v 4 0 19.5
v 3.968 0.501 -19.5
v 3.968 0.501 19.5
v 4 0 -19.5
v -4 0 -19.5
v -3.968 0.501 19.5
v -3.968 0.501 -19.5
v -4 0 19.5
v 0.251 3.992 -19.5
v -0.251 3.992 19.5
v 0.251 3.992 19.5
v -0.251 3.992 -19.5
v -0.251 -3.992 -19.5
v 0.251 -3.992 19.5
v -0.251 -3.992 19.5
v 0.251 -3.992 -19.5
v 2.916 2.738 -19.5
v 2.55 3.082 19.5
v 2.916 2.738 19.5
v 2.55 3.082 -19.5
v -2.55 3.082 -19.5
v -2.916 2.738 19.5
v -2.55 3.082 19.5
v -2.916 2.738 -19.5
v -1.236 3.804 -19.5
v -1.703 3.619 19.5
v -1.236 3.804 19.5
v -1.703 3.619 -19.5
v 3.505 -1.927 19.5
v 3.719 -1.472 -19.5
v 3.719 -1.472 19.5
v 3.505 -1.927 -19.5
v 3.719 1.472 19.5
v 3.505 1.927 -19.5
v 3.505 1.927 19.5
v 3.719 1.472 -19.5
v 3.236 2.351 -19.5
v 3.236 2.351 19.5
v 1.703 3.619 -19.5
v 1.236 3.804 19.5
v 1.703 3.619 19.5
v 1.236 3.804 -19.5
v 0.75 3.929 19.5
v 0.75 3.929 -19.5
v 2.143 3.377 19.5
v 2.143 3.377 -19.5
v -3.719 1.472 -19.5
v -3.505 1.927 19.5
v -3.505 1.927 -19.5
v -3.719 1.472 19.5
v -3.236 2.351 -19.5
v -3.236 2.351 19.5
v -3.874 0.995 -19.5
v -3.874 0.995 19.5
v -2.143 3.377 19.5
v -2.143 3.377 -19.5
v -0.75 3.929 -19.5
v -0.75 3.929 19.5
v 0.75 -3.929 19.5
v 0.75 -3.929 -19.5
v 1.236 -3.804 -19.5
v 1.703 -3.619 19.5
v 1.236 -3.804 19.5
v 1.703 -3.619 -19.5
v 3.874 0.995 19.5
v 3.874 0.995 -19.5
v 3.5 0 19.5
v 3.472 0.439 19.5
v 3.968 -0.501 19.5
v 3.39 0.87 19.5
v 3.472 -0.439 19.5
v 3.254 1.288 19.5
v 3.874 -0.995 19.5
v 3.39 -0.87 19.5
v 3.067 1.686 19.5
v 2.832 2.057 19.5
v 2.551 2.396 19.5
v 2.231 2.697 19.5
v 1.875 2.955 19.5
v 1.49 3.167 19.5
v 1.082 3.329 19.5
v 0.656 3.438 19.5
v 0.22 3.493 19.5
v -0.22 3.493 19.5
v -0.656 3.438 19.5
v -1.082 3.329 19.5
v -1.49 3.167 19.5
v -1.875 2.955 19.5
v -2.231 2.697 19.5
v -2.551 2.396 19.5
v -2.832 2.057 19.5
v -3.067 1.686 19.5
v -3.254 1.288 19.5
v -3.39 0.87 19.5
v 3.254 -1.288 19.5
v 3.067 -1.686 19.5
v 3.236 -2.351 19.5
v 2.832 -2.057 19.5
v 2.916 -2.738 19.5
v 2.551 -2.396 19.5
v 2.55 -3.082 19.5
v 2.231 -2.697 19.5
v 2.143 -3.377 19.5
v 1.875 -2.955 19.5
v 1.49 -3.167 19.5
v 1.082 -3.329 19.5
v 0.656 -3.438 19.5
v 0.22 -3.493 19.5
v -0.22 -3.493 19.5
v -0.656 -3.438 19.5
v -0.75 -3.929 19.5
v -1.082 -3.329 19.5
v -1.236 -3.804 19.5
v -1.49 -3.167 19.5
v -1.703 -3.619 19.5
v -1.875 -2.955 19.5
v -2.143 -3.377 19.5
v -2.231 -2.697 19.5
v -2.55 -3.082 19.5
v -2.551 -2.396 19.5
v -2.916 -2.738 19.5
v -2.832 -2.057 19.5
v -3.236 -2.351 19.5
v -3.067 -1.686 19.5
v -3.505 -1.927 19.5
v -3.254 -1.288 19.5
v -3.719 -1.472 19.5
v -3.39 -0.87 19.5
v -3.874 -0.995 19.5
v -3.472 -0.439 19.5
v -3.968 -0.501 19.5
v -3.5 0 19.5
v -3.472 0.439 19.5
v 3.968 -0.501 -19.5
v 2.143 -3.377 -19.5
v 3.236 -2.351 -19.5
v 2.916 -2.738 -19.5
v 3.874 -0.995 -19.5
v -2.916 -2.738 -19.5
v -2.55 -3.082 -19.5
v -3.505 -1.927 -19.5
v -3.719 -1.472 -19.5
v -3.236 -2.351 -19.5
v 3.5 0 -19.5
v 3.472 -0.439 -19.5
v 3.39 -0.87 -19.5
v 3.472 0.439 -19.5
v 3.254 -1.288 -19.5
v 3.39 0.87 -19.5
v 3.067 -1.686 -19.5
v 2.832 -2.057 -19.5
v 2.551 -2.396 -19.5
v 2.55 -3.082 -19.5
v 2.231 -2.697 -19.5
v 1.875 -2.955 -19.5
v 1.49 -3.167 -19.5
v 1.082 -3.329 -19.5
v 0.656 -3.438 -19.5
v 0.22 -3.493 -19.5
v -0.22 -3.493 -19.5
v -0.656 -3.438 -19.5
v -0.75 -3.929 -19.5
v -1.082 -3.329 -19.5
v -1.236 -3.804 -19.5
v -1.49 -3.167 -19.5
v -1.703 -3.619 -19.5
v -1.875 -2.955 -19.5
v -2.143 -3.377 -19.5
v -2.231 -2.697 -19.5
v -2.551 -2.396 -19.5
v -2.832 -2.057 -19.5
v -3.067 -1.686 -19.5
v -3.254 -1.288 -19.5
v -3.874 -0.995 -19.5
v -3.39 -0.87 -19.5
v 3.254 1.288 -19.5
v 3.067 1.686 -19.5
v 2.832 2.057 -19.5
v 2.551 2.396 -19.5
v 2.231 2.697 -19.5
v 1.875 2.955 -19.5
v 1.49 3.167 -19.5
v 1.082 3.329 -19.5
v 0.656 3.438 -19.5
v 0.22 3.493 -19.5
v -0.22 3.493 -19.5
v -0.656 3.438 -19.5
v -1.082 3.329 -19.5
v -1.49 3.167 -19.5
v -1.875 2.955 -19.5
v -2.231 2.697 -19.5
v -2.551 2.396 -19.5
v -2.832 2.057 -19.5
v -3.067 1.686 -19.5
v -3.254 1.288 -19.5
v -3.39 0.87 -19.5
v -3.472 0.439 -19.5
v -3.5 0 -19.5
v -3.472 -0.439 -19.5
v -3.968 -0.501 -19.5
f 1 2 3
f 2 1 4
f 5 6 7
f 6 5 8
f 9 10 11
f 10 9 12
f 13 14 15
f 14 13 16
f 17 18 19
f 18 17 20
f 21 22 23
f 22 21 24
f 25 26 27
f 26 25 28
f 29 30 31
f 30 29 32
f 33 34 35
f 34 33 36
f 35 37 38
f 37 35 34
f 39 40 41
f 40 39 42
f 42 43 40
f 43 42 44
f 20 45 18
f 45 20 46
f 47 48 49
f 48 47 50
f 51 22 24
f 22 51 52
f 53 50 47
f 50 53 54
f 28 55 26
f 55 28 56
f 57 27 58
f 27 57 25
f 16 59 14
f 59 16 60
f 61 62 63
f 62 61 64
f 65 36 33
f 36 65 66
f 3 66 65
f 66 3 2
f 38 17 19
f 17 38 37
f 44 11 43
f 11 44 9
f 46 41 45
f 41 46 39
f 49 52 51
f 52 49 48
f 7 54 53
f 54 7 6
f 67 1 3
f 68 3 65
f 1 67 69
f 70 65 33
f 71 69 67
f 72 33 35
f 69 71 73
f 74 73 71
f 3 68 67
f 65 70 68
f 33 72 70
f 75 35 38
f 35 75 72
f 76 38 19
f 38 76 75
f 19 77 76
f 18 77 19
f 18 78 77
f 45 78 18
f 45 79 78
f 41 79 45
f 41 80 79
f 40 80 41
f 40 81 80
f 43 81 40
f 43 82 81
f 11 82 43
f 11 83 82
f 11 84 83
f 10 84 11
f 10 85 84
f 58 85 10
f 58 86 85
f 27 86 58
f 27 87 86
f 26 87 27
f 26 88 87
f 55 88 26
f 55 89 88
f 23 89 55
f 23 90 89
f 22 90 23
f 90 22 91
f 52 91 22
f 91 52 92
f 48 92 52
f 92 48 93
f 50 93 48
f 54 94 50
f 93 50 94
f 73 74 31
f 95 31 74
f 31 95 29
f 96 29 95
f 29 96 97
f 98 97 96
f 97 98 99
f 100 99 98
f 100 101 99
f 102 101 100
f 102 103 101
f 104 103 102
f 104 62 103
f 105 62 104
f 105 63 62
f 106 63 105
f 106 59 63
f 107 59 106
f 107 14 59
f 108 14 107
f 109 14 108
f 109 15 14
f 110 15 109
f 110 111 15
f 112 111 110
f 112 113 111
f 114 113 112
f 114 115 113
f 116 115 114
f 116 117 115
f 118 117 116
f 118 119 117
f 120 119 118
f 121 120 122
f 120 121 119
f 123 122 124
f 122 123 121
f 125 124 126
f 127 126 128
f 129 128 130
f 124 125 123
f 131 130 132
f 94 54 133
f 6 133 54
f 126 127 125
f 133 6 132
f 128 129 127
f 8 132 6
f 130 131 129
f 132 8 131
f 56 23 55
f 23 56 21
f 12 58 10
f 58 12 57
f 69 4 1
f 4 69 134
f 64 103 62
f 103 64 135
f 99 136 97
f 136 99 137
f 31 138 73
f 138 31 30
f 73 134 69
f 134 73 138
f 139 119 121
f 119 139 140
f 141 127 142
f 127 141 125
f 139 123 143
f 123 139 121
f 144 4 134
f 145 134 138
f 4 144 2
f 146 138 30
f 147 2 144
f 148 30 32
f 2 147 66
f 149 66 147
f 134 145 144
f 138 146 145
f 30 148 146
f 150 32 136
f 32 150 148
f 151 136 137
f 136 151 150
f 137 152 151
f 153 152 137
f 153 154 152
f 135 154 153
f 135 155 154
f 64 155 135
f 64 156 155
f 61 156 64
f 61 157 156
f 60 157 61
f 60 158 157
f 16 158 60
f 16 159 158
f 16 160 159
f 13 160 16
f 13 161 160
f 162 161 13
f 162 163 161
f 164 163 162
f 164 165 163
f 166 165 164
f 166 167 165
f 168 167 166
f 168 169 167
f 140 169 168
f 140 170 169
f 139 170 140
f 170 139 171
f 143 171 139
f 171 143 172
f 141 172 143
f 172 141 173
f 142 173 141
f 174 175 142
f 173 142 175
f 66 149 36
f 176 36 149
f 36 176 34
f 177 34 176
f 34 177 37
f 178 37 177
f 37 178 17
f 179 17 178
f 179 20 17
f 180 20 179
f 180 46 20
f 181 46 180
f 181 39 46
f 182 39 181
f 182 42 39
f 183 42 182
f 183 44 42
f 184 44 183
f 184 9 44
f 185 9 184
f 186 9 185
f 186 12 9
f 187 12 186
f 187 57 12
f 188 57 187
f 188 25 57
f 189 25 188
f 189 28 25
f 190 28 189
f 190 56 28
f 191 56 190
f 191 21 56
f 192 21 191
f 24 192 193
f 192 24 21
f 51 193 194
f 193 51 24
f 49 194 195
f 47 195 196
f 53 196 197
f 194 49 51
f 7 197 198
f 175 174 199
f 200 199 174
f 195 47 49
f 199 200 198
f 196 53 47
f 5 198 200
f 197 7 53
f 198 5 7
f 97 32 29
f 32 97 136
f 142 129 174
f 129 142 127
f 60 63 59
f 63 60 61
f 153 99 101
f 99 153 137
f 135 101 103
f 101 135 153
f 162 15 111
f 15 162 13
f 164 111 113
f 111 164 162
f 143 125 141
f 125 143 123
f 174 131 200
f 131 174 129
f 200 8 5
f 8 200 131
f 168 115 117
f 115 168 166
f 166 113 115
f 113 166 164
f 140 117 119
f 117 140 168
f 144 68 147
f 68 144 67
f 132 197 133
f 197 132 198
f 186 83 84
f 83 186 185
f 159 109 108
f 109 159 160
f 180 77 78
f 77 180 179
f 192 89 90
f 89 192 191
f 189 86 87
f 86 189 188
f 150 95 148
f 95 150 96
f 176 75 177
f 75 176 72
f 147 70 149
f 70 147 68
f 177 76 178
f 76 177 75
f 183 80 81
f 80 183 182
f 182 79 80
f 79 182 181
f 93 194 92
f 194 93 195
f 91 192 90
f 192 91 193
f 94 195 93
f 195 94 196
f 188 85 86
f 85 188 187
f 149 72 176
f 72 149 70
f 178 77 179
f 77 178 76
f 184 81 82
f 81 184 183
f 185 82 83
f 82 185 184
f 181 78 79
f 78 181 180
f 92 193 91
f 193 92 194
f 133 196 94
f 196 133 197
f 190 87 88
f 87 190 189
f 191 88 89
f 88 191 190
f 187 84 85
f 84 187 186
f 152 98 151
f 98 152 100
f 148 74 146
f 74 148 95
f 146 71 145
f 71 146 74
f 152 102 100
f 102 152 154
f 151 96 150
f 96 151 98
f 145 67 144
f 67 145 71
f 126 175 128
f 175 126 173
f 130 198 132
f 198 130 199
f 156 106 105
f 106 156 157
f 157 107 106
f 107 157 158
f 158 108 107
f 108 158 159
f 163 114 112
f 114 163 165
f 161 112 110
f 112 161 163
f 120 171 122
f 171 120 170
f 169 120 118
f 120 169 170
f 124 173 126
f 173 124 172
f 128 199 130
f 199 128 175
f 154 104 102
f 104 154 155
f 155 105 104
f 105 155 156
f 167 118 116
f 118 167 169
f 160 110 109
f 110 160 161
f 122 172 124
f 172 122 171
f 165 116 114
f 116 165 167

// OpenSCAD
$fn = 50;


difference() {
	union() {
		translate(v = [0, 0, -19.5000000000]) {
			cylinder(h = 39, r = 4.0000000000);
		}
	}
	union() {
		translate(v = [0, 0, -100.0000000000]) {
			cylinder(h = 200, r = 3.5000000000);
		}
	}
}
